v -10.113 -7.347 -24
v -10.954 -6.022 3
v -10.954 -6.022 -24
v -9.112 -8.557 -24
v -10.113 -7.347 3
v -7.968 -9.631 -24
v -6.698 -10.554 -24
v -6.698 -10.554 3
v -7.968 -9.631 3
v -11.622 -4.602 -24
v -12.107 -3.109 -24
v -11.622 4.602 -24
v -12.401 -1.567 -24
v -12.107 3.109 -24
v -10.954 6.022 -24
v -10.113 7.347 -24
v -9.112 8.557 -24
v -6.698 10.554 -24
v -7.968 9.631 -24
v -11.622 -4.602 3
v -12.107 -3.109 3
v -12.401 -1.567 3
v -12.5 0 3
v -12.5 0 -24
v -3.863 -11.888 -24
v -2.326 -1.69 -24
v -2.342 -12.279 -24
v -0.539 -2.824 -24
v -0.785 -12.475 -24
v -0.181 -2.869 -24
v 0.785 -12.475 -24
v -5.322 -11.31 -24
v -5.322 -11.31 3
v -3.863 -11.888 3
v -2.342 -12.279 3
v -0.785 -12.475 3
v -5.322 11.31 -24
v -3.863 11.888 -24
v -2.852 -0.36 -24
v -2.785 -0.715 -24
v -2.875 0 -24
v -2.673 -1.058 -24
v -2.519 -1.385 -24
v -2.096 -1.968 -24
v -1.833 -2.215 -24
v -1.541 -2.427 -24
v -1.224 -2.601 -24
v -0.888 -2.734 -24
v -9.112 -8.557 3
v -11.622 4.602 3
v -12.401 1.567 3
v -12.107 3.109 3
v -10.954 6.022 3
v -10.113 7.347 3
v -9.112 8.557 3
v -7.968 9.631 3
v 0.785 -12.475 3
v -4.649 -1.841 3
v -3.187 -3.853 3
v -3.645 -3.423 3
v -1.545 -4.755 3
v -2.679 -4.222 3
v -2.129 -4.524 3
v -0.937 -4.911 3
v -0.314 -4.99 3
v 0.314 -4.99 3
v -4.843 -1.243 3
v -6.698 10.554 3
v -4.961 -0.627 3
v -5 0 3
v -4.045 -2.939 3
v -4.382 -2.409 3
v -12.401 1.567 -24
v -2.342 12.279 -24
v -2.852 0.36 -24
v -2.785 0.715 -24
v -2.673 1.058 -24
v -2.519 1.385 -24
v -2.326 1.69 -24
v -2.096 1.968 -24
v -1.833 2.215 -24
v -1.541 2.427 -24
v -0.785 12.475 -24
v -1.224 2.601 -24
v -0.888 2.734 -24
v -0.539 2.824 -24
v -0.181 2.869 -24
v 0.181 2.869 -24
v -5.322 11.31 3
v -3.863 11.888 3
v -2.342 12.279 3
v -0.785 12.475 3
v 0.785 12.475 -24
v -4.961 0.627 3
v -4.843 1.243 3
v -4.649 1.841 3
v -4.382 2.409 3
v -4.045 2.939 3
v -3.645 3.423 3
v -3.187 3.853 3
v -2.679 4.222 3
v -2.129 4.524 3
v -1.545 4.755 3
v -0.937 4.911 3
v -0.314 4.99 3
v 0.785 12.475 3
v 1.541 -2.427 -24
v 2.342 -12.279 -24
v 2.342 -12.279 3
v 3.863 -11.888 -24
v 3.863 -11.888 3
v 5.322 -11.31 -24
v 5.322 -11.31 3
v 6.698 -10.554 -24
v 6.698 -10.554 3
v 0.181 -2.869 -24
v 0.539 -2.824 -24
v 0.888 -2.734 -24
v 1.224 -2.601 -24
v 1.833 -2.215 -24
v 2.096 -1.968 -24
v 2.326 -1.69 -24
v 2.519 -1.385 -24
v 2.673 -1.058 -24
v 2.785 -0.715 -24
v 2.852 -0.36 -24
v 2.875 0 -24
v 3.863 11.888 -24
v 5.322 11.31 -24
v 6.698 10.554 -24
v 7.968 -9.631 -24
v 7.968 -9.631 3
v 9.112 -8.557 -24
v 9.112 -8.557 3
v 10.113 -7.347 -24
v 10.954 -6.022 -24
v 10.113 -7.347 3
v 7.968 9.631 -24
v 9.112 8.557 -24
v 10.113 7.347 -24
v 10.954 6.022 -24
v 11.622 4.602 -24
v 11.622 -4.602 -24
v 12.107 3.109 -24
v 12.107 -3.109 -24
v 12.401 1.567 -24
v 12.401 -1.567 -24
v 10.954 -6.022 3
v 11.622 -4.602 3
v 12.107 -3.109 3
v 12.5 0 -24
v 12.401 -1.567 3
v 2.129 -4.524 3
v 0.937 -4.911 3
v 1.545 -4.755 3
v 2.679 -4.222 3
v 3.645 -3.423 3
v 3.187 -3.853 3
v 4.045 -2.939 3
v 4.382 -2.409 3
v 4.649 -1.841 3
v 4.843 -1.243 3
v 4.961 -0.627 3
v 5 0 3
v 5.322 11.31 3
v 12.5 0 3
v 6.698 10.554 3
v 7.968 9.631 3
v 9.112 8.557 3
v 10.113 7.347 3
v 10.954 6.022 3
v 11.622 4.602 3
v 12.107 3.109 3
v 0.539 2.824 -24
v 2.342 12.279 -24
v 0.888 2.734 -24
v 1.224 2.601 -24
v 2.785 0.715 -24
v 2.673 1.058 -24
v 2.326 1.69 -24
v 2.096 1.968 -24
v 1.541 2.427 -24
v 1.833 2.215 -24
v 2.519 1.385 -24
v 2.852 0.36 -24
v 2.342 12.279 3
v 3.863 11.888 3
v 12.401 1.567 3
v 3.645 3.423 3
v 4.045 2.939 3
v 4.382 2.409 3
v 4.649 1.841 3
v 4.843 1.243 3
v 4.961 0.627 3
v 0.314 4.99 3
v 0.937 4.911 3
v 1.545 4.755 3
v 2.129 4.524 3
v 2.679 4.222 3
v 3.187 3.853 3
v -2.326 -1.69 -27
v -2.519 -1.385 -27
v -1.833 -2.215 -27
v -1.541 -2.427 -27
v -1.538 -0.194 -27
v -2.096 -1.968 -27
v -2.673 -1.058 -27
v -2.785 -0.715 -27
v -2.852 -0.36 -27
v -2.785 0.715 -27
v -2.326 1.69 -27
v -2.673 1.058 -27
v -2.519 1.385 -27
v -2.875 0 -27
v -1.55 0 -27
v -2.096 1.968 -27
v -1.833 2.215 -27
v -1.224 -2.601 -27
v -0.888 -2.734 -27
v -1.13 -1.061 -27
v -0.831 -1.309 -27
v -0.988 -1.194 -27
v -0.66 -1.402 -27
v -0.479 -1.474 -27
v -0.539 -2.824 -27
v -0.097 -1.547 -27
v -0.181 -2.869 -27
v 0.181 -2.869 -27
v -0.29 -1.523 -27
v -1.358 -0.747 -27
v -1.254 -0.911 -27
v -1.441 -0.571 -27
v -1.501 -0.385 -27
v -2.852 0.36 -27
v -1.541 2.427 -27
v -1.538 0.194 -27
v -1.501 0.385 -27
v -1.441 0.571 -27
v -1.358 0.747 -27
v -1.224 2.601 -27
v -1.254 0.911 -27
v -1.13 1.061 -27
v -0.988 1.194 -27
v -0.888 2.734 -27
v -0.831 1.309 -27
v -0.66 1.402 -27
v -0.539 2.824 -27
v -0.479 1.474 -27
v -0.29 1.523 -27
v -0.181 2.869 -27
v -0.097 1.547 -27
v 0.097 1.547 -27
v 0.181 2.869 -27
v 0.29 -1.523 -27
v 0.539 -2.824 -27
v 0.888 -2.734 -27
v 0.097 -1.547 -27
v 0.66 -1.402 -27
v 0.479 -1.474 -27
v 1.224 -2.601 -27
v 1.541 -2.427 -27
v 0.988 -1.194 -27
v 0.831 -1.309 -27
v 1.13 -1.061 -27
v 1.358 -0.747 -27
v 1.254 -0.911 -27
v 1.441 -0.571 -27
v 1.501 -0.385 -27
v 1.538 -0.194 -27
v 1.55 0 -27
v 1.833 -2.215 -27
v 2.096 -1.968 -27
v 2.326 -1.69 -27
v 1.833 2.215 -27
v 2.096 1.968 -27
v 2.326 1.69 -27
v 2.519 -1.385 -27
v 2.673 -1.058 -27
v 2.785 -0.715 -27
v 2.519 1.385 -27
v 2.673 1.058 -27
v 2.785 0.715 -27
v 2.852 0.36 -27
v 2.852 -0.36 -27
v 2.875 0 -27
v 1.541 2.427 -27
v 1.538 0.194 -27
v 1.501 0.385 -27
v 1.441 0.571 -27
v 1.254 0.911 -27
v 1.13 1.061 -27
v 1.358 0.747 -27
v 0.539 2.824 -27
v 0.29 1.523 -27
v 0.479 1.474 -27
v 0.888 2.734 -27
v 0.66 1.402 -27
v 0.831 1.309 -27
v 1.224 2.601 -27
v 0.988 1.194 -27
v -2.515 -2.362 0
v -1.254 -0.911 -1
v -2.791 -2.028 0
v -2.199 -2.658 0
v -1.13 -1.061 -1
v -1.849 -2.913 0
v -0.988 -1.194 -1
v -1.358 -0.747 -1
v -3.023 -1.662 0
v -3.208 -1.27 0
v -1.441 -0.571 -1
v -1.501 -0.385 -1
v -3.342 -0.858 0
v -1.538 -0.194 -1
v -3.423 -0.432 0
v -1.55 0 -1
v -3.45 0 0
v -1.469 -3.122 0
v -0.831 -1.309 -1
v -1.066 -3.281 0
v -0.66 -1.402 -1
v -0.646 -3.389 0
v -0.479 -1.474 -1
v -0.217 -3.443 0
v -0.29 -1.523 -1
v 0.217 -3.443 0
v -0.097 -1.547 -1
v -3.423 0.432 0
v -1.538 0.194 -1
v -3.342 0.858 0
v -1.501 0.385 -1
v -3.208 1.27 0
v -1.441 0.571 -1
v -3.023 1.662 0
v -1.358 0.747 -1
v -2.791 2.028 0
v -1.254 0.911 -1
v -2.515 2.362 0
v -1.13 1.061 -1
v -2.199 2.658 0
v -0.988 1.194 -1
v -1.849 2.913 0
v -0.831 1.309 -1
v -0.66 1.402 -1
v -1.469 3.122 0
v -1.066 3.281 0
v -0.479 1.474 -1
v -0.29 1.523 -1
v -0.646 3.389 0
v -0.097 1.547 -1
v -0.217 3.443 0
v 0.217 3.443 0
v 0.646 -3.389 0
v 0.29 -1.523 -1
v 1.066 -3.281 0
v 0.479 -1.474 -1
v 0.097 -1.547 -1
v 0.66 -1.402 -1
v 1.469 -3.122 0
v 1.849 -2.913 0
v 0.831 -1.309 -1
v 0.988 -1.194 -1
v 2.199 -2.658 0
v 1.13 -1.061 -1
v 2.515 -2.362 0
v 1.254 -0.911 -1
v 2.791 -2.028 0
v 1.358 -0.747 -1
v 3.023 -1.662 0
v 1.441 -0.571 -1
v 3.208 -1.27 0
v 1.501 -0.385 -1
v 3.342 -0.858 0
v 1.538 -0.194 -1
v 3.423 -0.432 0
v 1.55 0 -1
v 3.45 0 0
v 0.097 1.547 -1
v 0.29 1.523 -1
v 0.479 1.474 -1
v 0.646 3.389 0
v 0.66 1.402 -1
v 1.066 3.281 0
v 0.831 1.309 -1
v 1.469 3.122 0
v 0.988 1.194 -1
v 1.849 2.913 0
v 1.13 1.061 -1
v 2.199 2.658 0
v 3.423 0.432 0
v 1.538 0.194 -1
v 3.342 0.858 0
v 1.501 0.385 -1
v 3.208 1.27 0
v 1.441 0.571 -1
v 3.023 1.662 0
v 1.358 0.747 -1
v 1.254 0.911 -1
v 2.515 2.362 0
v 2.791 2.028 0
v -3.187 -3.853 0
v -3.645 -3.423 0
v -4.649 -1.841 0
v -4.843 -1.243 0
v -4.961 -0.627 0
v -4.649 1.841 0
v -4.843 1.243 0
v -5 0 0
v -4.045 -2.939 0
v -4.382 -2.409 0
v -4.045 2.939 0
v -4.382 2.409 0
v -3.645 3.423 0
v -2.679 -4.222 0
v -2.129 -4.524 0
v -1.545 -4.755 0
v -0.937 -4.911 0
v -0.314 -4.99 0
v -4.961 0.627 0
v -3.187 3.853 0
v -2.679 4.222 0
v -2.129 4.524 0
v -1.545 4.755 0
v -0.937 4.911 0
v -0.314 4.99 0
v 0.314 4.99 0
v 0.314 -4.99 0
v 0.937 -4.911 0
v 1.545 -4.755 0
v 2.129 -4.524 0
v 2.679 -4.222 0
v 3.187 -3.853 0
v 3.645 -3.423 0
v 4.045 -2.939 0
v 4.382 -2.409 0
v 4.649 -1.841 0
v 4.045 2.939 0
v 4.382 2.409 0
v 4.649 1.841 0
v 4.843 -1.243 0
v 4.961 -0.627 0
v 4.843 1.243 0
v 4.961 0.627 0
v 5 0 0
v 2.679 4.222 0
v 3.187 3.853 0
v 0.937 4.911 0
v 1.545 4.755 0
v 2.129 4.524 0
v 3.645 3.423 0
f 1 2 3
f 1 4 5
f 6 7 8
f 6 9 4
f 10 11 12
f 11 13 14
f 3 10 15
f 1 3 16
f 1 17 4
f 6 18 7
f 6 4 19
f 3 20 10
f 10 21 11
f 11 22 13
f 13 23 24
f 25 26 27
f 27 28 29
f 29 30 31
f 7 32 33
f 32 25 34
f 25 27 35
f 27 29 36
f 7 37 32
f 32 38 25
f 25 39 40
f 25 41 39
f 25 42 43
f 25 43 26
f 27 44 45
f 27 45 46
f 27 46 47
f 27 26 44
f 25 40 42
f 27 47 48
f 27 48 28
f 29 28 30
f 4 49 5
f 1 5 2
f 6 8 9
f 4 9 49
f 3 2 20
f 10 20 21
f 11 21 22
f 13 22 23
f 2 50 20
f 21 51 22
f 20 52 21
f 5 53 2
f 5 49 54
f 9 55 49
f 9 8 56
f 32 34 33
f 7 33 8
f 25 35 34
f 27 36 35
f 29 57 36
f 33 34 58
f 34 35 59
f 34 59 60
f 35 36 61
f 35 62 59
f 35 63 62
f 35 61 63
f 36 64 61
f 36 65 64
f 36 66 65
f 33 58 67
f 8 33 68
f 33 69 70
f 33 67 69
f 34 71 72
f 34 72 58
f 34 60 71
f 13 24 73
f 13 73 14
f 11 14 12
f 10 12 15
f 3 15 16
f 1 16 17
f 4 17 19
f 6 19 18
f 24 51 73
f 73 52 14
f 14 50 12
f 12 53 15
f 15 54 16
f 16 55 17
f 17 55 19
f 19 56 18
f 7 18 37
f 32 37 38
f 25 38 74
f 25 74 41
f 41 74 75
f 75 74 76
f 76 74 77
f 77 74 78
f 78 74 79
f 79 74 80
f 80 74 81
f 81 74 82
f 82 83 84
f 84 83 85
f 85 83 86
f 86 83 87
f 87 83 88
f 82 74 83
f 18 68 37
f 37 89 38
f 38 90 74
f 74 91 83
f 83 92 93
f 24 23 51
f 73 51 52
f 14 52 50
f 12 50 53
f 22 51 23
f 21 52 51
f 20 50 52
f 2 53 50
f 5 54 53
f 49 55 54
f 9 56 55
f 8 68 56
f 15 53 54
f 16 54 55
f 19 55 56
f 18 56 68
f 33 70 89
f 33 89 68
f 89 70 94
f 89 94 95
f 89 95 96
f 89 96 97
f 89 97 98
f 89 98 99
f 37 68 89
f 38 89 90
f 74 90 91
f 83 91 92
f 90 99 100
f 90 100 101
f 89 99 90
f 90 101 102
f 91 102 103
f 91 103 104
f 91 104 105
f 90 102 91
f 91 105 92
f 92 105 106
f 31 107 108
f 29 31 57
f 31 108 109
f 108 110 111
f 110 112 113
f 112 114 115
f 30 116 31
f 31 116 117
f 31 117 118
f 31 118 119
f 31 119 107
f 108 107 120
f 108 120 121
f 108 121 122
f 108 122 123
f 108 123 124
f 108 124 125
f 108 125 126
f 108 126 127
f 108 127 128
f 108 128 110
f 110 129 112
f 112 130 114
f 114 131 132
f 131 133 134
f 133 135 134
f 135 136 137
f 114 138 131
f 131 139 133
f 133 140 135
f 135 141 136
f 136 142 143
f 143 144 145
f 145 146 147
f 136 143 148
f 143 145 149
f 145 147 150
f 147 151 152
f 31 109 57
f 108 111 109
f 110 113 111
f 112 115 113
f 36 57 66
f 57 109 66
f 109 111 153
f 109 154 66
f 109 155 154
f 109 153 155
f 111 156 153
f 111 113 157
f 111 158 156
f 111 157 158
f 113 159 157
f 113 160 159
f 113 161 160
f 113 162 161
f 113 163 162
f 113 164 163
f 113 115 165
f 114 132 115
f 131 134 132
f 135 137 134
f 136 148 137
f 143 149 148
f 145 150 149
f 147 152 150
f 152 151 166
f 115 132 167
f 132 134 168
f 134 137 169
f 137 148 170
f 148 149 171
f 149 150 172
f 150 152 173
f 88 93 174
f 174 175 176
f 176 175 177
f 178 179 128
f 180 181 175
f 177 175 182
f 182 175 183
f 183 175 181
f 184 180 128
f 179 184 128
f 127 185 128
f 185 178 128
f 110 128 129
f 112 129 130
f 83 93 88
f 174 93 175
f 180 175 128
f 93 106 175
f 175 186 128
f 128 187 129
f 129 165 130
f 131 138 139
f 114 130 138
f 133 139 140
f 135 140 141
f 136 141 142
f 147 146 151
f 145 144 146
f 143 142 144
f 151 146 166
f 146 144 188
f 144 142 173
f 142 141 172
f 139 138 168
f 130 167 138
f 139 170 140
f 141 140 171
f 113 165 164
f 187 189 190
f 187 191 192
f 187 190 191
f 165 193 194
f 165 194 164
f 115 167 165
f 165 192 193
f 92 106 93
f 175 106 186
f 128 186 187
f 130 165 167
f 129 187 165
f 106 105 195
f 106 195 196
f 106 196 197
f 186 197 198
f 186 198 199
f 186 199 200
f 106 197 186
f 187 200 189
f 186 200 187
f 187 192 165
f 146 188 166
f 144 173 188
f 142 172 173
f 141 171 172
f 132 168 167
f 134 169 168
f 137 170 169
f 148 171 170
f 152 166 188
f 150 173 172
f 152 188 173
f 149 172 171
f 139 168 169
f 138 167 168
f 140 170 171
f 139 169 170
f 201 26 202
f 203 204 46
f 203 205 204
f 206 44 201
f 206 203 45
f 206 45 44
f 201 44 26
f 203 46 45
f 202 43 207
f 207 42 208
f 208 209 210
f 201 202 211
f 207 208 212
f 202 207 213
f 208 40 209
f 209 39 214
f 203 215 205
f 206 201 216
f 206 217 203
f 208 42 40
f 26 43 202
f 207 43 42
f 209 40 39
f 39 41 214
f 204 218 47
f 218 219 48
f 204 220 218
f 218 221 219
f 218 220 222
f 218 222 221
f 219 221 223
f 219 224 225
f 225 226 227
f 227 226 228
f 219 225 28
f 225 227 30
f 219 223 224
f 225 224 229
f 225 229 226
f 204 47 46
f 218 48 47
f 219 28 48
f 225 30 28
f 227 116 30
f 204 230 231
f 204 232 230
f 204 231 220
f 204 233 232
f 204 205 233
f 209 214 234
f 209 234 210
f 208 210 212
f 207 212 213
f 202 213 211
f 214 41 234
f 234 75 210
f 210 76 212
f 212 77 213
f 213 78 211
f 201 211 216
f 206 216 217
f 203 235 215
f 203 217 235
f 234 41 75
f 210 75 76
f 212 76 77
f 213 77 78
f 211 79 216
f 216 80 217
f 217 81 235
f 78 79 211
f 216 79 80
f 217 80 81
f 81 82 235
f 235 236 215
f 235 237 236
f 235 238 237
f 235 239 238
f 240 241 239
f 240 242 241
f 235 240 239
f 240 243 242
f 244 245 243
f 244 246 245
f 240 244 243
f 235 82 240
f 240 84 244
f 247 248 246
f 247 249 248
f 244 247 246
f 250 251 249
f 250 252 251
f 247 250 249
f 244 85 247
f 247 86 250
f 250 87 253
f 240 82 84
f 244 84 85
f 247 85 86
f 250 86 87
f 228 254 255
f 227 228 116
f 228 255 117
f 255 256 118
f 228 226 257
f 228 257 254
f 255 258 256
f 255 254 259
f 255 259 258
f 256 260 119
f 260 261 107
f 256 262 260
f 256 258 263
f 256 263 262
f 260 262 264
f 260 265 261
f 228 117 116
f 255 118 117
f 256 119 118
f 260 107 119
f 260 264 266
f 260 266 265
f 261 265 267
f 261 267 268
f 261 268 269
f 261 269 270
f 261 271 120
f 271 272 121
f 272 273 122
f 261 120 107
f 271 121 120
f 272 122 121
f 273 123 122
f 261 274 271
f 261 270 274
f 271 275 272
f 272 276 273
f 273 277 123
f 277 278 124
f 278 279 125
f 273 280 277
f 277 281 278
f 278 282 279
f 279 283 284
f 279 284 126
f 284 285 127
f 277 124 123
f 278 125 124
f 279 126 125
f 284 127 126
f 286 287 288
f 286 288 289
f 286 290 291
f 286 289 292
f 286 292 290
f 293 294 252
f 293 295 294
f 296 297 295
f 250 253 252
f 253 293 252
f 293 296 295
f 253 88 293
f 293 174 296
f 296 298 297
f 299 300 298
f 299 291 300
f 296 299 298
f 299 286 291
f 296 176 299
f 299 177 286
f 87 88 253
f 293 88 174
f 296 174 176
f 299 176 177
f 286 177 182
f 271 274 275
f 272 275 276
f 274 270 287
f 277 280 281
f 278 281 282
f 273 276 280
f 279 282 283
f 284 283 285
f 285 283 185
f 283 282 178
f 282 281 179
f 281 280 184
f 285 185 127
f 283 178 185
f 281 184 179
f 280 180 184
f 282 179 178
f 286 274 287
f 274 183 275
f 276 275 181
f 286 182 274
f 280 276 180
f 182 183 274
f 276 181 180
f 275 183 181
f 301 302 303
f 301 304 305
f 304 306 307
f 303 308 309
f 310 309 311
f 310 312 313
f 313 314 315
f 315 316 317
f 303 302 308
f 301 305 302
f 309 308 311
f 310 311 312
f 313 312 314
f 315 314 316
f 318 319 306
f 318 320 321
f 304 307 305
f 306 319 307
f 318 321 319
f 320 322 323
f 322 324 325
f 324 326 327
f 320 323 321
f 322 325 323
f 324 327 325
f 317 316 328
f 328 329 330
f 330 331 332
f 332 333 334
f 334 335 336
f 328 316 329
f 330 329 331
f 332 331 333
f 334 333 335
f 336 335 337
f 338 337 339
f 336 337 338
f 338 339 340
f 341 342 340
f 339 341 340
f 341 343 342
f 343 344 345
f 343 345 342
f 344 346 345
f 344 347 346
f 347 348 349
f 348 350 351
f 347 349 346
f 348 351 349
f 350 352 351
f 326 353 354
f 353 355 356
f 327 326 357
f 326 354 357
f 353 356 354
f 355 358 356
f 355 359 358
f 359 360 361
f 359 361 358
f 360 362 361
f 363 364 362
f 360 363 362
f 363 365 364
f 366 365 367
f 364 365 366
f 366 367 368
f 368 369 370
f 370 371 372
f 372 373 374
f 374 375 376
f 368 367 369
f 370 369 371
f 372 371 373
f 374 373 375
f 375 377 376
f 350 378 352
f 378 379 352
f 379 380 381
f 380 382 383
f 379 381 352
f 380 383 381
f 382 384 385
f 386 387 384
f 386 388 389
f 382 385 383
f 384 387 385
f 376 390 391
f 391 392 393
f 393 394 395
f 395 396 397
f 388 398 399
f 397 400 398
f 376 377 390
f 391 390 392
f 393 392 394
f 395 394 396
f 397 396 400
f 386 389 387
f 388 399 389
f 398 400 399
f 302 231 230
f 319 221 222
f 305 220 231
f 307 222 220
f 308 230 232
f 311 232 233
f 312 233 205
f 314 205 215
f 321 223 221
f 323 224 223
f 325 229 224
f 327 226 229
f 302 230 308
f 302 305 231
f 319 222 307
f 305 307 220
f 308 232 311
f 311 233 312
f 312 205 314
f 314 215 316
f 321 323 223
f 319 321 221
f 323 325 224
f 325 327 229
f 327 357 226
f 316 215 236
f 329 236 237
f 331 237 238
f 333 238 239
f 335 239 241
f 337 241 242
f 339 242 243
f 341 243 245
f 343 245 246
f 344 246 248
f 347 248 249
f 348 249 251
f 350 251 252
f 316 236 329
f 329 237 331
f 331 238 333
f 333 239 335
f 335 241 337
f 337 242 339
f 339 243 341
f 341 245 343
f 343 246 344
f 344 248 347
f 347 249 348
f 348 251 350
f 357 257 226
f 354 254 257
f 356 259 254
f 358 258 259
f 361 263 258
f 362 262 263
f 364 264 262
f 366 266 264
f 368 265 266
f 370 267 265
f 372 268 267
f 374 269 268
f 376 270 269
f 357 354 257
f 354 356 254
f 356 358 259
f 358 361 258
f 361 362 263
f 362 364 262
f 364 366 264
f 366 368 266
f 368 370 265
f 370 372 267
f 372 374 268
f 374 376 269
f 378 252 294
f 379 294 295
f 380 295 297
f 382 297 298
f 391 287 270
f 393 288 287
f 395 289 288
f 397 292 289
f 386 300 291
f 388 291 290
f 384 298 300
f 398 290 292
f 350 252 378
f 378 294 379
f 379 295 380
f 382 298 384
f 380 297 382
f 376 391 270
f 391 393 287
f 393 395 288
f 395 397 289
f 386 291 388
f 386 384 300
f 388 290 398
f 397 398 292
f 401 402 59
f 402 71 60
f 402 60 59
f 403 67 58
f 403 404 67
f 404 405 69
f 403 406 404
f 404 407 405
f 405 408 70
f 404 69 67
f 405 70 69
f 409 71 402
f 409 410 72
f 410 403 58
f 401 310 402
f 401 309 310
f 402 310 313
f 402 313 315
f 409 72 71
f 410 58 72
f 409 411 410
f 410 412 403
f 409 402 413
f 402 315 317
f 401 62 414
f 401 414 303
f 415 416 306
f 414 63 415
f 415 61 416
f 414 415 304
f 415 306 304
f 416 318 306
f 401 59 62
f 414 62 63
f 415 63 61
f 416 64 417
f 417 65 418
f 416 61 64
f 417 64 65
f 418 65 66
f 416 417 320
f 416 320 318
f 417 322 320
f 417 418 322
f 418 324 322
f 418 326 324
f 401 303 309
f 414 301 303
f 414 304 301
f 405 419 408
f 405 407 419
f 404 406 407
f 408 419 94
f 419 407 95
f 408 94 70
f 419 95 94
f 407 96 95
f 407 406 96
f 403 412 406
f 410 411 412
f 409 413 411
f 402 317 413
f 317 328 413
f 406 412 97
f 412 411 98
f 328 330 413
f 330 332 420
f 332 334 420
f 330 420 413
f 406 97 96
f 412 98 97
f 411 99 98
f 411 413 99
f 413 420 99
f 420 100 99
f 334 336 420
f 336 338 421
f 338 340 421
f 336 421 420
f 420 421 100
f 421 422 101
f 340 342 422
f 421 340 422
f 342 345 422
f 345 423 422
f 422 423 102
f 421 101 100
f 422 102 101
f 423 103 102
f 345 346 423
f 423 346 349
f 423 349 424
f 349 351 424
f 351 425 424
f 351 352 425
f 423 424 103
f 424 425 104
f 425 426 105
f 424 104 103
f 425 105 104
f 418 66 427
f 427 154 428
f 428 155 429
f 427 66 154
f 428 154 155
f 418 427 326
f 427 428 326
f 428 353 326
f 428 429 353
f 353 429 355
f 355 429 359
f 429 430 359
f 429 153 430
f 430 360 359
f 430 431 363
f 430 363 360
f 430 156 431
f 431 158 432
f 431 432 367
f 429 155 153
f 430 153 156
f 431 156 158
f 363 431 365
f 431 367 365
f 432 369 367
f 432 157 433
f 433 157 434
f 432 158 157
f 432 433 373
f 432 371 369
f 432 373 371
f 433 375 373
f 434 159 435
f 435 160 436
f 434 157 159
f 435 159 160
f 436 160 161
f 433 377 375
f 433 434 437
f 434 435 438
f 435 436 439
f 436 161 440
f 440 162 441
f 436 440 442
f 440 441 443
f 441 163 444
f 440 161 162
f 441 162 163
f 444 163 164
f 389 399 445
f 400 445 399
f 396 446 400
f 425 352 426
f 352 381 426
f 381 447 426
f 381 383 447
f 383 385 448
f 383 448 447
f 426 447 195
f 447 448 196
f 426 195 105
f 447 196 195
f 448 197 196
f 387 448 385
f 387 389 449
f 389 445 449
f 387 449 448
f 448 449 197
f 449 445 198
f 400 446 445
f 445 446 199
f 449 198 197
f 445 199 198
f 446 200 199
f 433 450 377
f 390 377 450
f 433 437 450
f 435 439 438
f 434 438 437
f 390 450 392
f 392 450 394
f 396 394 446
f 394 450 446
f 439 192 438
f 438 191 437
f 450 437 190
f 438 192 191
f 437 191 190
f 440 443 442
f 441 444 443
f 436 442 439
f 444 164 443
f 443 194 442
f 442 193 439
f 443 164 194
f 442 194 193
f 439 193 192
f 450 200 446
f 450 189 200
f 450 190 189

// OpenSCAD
$fn = 50;


difference() {
	union() {
		translate(v = [0, 0, -24.0000000000]) {
			cylinder(h = 27, r = 12.5000000000);
		}
		#translate(v = [0, 0, -27.0000000000]) {
			cylinder(h = 27, r = 2.8750000000);
		}
	}
	union() {
		translate(v = [0, 0, 0]) {
			rotate(a = [0, 0, 0]) {
				difference() {
					union() {
						translate(v = [0, 0, -27.0000000000]) {
							cylinder(h = 27, r = 1.2500000000);
						}
						translate(v = [0, 0, -1.0000000000]) {
							cylinder(h = 1.0000000000, r1 = 1.5500000000, r2 = 3.4500000000);
						}
						translate(v = [0, 0, -27.0000000000]) {
							cylinder(h = 27, r = 1.5500000000);
						}
						translate(v = [0, 0, -27.0000000000]) {
							cylinder(h = 27, r = 1.2500000000);
						}
					}
					union();
				}
			}
		}
		#cylinder(h = 3, r = 5.0000000000);
	}
}
